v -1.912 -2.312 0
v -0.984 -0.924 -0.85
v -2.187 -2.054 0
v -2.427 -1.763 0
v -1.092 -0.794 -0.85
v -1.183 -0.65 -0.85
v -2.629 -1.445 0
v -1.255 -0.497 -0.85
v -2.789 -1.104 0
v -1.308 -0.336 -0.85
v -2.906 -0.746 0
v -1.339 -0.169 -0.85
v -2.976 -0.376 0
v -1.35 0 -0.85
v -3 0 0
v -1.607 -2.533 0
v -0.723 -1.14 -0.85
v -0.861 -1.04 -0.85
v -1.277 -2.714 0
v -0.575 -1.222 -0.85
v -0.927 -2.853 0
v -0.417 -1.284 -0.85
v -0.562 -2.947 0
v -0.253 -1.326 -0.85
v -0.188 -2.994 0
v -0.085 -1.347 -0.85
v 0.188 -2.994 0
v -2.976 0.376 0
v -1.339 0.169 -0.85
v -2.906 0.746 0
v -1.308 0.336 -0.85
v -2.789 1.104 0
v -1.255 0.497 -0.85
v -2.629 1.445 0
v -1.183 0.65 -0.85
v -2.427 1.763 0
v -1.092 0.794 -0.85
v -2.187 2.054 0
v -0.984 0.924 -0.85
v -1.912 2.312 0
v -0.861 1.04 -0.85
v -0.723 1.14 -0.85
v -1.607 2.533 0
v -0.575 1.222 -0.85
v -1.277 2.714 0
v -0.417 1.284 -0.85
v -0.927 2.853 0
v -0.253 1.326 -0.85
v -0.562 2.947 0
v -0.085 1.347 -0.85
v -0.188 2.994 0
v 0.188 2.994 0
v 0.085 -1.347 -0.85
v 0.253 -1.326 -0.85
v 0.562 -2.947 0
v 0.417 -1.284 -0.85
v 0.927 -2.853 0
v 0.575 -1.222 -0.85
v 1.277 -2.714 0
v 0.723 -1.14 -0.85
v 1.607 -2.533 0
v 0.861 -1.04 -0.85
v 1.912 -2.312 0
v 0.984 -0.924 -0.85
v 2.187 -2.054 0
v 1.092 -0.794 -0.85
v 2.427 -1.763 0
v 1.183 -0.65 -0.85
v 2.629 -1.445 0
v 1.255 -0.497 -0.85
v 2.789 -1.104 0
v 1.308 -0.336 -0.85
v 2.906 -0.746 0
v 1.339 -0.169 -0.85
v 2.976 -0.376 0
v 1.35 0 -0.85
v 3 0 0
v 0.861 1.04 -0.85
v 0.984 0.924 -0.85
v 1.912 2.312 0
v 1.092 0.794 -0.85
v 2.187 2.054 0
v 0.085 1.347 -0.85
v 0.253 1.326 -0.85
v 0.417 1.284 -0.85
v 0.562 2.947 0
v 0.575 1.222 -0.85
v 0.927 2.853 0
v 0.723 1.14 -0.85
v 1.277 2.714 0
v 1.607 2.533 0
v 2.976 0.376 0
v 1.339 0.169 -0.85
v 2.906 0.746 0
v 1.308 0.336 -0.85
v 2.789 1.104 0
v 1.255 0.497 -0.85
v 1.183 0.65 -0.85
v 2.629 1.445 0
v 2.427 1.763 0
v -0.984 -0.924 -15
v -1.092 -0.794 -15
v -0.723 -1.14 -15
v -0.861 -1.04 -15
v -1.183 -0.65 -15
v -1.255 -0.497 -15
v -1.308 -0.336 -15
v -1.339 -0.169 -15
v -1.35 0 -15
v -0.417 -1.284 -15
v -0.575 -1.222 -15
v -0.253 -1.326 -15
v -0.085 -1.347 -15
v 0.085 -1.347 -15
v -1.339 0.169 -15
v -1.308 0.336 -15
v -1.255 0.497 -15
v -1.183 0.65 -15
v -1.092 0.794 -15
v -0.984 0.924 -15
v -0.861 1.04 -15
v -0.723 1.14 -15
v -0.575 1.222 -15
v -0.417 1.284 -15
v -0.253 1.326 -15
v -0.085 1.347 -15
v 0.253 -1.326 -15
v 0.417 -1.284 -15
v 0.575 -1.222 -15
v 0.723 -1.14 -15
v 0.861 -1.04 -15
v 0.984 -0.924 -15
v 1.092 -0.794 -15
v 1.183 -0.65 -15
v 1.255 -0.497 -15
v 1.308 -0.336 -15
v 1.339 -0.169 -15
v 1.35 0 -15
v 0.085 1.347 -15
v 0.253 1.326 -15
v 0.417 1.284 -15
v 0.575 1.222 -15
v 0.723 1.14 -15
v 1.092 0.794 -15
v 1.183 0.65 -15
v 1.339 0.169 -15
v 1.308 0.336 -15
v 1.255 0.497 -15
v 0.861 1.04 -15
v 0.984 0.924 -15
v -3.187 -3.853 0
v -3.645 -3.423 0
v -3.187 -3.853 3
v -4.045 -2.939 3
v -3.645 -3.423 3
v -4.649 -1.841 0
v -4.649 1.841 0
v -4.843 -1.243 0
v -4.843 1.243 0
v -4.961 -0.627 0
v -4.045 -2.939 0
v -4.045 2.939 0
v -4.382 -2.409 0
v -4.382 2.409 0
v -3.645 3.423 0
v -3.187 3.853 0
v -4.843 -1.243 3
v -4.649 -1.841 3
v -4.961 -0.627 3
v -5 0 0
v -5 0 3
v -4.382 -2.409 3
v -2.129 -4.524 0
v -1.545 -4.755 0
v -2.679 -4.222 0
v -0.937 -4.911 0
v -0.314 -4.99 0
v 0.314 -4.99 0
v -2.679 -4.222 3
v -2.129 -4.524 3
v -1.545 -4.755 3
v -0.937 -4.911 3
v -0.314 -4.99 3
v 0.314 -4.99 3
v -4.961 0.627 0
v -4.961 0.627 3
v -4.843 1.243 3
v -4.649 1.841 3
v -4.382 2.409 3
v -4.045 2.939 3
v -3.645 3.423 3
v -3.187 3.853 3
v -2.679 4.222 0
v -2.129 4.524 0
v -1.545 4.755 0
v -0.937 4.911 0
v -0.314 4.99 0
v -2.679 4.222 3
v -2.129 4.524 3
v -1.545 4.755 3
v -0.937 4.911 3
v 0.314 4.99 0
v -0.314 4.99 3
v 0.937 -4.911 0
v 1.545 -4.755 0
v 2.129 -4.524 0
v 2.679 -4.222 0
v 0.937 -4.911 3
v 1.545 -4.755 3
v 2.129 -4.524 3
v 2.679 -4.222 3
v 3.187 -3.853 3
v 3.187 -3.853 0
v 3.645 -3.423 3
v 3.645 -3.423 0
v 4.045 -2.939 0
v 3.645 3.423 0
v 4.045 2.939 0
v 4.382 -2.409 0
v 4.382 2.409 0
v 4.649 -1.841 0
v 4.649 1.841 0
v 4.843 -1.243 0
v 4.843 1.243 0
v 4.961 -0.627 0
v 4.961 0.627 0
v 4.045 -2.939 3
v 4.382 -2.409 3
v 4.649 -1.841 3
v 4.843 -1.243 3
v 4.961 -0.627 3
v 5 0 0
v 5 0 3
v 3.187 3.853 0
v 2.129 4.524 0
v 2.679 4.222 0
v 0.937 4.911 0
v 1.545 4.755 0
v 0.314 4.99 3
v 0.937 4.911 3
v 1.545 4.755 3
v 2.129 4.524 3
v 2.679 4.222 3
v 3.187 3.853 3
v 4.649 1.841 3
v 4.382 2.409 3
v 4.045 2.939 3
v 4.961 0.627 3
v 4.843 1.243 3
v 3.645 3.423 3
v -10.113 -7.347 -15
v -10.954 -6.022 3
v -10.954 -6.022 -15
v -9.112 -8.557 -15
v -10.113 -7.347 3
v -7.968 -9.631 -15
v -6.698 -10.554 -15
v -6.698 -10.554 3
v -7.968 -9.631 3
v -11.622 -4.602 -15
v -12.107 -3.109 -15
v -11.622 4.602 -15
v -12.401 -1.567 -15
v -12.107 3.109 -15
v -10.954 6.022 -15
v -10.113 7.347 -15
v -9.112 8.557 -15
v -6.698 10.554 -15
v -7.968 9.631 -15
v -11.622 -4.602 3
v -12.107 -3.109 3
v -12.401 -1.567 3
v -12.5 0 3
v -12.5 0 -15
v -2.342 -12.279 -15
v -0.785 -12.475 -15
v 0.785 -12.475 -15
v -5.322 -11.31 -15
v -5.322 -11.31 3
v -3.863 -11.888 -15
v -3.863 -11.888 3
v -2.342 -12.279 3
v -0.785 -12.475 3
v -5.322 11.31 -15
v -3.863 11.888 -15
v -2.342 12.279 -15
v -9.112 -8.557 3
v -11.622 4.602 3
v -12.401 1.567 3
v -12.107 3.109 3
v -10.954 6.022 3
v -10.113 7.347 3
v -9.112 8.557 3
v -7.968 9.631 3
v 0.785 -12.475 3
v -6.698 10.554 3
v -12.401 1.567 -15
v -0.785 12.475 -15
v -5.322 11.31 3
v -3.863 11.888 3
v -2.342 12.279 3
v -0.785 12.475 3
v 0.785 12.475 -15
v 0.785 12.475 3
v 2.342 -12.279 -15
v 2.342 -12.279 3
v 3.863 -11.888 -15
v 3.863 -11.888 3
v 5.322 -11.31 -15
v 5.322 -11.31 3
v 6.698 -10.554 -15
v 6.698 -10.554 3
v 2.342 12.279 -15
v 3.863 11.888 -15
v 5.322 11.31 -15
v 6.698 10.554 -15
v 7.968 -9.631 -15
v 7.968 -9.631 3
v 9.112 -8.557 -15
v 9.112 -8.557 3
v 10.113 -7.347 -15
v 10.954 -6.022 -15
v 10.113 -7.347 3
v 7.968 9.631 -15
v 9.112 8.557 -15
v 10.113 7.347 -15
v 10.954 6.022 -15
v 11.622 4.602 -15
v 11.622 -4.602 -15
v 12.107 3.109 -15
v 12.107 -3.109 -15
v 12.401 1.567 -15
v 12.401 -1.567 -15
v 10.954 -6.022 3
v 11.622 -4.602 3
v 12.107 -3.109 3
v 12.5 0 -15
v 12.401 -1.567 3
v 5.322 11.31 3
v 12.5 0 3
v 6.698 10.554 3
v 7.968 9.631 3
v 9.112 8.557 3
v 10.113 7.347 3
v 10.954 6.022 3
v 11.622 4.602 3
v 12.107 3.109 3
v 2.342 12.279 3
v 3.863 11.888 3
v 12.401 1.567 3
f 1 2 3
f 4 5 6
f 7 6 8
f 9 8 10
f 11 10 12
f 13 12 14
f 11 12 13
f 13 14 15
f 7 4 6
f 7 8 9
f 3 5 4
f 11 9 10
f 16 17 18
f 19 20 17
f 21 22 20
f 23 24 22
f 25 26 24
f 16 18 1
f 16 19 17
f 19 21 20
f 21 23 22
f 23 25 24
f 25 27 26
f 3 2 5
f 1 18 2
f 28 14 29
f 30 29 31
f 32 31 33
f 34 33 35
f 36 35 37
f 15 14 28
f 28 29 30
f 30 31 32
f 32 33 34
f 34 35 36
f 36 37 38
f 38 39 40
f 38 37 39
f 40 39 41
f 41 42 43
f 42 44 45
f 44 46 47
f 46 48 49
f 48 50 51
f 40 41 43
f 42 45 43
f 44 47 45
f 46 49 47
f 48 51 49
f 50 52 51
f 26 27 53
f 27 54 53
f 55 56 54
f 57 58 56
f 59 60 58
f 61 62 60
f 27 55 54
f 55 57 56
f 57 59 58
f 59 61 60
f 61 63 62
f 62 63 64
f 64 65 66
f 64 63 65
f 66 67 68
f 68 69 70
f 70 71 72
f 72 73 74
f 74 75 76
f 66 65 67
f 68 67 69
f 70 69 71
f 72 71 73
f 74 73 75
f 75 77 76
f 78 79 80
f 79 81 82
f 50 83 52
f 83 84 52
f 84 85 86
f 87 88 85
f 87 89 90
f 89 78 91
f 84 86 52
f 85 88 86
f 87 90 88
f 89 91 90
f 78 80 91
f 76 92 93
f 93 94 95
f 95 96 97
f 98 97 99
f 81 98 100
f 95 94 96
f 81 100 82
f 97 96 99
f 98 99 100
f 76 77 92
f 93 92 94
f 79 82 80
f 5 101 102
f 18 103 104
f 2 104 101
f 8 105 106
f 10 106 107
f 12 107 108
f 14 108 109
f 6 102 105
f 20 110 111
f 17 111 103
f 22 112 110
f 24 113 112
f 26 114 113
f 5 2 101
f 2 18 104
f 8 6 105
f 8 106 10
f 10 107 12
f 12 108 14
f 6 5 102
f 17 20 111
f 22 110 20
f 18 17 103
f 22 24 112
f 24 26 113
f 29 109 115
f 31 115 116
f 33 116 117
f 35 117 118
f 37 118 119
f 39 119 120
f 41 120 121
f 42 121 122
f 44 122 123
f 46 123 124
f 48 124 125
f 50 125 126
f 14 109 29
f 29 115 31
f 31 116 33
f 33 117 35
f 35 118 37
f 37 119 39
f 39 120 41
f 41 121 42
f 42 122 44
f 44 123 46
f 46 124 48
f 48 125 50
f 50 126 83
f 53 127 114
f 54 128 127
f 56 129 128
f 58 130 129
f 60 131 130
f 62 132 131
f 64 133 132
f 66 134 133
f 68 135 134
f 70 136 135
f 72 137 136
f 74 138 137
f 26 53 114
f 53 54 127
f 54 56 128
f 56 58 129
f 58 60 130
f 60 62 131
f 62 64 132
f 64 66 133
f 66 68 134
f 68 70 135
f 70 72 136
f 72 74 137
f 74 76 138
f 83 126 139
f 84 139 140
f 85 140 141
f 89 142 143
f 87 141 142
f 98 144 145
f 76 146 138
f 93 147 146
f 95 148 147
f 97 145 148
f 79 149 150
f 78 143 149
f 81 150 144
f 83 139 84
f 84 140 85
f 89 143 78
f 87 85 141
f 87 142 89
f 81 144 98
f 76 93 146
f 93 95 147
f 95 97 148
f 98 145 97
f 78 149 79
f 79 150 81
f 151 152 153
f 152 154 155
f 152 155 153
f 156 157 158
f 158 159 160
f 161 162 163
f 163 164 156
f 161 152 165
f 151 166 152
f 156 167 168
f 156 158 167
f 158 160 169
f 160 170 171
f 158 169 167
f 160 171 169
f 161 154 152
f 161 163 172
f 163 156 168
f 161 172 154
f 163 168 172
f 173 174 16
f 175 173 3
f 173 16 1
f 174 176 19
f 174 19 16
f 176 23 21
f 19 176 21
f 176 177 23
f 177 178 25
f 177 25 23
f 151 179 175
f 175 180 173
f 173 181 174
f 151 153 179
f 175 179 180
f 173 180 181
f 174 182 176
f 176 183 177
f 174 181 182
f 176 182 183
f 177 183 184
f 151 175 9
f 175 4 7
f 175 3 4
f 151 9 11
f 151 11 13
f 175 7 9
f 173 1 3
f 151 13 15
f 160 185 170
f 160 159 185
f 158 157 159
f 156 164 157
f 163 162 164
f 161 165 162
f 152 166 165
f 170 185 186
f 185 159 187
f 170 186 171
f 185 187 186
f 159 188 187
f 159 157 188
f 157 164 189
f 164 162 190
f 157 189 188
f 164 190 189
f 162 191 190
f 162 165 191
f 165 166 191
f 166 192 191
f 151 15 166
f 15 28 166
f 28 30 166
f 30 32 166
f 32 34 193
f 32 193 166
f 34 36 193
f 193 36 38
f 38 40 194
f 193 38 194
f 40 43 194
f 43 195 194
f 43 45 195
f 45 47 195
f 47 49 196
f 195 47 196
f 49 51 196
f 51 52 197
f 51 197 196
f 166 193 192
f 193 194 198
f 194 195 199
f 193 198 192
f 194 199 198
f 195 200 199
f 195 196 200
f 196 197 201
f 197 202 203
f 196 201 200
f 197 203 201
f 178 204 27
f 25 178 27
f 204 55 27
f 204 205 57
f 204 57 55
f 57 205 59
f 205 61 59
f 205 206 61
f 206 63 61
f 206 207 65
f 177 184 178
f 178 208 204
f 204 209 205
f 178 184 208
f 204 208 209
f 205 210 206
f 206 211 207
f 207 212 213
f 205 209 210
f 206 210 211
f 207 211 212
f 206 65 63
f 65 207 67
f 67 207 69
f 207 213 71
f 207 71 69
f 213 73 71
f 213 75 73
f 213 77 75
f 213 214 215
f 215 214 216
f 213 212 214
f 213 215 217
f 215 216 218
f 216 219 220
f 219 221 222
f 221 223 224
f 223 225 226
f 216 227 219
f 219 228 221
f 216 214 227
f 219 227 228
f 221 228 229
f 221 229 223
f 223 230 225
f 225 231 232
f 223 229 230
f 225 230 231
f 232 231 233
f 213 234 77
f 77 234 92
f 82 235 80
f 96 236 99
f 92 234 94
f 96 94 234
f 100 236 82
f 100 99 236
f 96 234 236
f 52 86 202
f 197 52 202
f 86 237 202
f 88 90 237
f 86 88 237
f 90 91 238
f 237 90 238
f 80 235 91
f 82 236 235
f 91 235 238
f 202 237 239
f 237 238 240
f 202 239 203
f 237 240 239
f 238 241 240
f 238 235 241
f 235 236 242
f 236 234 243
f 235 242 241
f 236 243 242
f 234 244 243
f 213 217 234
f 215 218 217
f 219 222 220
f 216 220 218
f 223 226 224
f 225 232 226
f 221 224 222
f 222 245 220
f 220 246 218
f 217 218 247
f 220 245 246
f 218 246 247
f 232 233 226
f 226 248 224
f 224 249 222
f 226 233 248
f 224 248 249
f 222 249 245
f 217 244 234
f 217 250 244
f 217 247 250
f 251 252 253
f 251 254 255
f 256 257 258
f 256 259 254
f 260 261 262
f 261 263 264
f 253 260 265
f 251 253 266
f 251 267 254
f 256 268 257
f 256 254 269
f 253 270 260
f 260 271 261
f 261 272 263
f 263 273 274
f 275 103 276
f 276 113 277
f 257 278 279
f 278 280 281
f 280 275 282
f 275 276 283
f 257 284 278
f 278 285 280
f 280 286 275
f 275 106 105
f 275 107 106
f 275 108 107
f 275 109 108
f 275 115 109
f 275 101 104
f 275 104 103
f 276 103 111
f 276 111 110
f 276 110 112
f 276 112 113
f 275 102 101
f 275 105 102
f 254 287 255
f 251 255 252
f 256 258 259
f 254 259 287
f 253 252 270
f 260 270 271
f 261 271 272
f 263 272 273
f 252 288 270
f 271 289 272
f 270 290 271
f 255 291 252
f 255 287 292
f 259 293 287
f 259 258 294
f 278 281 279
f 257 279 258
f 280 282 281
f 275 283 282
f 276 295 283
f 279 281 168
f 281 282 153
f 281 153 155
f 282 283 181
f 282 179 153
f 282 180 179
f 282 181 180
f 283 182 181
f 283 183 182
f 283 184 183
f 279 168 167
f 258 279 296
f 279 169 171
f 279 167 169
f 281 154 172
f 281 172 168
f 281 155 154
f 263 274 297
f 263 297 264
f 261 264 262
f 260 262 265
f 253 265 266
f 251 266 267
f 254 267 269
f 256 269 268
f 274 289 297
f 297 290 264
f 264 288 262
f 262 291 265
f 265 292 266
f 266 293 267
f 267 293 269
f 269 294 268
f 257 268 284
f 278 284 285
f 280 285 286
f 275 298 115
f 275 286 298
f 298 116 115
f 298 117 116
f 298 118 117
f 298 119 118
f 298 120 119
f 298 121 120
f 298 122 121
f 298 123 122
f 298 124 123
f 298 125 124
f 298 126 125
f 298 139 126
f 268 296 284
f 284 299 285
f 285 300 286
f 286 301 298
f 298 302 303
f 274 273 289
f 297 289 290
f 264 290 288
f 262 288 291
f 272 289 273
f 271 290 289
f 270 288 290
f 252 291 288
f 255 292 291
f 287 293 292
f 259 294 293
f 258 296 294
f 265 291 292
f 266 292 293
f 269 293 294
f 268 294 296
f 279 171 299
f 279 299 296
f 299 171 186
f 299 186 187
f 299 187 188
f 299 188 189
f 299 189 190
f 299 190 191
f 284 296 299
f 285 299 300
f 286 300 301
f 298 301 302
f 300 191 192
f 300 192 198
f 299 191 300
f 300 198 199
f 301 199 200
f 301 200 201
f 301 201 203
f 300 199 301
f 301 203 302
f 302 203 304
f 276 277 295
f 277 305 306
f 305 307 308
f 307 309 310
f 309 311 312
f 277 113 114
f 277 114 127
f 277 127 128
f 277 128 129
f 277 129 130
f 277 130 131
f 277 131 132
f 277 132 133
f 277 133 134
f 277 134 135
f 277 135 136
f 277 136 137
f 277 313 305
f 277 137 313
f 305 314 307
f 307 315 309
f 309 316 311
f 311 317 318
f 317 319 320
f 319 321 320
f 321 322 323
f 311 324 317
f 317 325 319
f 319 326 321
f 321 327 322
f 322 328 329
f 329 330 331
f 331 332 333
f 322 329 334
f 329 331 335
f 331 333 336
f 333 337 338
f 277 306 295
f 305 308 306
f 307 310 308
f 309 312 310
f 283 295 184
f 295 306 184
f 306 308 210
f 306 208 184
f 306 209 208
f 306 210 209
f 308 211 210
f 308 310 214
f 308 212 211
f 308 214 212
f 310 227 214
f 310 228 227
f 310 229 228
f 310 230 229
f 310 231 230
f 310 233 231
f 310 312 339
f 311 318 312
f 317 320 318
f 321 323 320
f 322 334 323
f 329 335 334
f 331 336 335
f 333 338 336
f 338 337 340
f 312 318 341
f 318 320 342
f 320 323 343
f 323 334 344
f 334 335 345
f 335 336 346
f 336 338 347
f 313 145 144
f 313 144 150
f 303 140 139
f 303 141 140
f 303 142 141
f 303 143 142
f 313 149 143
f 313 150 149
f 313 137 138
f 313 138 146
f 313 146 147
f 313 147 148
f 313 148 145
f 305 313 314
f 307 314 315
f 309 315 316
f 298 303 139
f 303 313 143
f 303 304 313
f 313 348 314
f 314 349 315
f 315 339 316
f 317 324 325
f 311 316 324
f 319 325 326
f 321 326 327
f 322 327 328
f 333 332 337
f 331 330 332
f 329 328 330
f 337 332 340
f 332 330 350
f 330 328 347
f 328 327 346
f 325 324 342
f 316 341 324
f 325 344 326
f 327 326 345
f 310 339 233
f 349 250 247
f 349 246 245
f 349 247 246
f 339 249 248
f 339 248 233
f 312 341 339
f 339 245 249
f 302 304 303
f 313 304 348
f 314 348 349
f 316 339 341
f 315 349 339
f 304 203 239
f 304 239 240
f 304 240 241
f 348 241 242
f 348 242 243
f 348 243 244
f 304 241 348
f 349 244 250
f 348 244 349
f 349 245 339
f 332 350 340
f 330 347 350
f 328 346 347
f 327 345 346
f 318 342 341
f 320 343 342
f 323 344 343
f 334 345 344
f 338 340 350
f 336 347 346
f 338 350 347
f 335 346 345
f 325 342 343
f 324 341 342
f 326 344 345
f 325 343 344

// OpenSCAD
$fn = 50;

difference() {
	union() {
		translate(v = [0, 0, -15.0]) {
			cylinder(h = 18, r = 12.5);
		}
	}
	union() {
		translate(v = [0, 0, 0]) {
			rotate(a = [0, 0, 0]) {
				difference() {
					union() {
						translate(v = [0, 0, -18.0]) {
							cylinder(h = 18, r = 1.0);
						}
						translate(v = [0, 0, -0.85]) {
							cylinder(h = 0.85, r1 = 1.35, r2 = 3.0);
						}
						translate(v = [0, 0, -18.0]) {
							cylinder(h = 18, r = 1.35);
						}
						translate(v = [0, 0, -18.0]) {
							cylinder(h = 18, r = 1.0);
						}
					}
					union();
				}
			}
		}
		#cylinder(h = 3, r = 5.0);
	}
}
